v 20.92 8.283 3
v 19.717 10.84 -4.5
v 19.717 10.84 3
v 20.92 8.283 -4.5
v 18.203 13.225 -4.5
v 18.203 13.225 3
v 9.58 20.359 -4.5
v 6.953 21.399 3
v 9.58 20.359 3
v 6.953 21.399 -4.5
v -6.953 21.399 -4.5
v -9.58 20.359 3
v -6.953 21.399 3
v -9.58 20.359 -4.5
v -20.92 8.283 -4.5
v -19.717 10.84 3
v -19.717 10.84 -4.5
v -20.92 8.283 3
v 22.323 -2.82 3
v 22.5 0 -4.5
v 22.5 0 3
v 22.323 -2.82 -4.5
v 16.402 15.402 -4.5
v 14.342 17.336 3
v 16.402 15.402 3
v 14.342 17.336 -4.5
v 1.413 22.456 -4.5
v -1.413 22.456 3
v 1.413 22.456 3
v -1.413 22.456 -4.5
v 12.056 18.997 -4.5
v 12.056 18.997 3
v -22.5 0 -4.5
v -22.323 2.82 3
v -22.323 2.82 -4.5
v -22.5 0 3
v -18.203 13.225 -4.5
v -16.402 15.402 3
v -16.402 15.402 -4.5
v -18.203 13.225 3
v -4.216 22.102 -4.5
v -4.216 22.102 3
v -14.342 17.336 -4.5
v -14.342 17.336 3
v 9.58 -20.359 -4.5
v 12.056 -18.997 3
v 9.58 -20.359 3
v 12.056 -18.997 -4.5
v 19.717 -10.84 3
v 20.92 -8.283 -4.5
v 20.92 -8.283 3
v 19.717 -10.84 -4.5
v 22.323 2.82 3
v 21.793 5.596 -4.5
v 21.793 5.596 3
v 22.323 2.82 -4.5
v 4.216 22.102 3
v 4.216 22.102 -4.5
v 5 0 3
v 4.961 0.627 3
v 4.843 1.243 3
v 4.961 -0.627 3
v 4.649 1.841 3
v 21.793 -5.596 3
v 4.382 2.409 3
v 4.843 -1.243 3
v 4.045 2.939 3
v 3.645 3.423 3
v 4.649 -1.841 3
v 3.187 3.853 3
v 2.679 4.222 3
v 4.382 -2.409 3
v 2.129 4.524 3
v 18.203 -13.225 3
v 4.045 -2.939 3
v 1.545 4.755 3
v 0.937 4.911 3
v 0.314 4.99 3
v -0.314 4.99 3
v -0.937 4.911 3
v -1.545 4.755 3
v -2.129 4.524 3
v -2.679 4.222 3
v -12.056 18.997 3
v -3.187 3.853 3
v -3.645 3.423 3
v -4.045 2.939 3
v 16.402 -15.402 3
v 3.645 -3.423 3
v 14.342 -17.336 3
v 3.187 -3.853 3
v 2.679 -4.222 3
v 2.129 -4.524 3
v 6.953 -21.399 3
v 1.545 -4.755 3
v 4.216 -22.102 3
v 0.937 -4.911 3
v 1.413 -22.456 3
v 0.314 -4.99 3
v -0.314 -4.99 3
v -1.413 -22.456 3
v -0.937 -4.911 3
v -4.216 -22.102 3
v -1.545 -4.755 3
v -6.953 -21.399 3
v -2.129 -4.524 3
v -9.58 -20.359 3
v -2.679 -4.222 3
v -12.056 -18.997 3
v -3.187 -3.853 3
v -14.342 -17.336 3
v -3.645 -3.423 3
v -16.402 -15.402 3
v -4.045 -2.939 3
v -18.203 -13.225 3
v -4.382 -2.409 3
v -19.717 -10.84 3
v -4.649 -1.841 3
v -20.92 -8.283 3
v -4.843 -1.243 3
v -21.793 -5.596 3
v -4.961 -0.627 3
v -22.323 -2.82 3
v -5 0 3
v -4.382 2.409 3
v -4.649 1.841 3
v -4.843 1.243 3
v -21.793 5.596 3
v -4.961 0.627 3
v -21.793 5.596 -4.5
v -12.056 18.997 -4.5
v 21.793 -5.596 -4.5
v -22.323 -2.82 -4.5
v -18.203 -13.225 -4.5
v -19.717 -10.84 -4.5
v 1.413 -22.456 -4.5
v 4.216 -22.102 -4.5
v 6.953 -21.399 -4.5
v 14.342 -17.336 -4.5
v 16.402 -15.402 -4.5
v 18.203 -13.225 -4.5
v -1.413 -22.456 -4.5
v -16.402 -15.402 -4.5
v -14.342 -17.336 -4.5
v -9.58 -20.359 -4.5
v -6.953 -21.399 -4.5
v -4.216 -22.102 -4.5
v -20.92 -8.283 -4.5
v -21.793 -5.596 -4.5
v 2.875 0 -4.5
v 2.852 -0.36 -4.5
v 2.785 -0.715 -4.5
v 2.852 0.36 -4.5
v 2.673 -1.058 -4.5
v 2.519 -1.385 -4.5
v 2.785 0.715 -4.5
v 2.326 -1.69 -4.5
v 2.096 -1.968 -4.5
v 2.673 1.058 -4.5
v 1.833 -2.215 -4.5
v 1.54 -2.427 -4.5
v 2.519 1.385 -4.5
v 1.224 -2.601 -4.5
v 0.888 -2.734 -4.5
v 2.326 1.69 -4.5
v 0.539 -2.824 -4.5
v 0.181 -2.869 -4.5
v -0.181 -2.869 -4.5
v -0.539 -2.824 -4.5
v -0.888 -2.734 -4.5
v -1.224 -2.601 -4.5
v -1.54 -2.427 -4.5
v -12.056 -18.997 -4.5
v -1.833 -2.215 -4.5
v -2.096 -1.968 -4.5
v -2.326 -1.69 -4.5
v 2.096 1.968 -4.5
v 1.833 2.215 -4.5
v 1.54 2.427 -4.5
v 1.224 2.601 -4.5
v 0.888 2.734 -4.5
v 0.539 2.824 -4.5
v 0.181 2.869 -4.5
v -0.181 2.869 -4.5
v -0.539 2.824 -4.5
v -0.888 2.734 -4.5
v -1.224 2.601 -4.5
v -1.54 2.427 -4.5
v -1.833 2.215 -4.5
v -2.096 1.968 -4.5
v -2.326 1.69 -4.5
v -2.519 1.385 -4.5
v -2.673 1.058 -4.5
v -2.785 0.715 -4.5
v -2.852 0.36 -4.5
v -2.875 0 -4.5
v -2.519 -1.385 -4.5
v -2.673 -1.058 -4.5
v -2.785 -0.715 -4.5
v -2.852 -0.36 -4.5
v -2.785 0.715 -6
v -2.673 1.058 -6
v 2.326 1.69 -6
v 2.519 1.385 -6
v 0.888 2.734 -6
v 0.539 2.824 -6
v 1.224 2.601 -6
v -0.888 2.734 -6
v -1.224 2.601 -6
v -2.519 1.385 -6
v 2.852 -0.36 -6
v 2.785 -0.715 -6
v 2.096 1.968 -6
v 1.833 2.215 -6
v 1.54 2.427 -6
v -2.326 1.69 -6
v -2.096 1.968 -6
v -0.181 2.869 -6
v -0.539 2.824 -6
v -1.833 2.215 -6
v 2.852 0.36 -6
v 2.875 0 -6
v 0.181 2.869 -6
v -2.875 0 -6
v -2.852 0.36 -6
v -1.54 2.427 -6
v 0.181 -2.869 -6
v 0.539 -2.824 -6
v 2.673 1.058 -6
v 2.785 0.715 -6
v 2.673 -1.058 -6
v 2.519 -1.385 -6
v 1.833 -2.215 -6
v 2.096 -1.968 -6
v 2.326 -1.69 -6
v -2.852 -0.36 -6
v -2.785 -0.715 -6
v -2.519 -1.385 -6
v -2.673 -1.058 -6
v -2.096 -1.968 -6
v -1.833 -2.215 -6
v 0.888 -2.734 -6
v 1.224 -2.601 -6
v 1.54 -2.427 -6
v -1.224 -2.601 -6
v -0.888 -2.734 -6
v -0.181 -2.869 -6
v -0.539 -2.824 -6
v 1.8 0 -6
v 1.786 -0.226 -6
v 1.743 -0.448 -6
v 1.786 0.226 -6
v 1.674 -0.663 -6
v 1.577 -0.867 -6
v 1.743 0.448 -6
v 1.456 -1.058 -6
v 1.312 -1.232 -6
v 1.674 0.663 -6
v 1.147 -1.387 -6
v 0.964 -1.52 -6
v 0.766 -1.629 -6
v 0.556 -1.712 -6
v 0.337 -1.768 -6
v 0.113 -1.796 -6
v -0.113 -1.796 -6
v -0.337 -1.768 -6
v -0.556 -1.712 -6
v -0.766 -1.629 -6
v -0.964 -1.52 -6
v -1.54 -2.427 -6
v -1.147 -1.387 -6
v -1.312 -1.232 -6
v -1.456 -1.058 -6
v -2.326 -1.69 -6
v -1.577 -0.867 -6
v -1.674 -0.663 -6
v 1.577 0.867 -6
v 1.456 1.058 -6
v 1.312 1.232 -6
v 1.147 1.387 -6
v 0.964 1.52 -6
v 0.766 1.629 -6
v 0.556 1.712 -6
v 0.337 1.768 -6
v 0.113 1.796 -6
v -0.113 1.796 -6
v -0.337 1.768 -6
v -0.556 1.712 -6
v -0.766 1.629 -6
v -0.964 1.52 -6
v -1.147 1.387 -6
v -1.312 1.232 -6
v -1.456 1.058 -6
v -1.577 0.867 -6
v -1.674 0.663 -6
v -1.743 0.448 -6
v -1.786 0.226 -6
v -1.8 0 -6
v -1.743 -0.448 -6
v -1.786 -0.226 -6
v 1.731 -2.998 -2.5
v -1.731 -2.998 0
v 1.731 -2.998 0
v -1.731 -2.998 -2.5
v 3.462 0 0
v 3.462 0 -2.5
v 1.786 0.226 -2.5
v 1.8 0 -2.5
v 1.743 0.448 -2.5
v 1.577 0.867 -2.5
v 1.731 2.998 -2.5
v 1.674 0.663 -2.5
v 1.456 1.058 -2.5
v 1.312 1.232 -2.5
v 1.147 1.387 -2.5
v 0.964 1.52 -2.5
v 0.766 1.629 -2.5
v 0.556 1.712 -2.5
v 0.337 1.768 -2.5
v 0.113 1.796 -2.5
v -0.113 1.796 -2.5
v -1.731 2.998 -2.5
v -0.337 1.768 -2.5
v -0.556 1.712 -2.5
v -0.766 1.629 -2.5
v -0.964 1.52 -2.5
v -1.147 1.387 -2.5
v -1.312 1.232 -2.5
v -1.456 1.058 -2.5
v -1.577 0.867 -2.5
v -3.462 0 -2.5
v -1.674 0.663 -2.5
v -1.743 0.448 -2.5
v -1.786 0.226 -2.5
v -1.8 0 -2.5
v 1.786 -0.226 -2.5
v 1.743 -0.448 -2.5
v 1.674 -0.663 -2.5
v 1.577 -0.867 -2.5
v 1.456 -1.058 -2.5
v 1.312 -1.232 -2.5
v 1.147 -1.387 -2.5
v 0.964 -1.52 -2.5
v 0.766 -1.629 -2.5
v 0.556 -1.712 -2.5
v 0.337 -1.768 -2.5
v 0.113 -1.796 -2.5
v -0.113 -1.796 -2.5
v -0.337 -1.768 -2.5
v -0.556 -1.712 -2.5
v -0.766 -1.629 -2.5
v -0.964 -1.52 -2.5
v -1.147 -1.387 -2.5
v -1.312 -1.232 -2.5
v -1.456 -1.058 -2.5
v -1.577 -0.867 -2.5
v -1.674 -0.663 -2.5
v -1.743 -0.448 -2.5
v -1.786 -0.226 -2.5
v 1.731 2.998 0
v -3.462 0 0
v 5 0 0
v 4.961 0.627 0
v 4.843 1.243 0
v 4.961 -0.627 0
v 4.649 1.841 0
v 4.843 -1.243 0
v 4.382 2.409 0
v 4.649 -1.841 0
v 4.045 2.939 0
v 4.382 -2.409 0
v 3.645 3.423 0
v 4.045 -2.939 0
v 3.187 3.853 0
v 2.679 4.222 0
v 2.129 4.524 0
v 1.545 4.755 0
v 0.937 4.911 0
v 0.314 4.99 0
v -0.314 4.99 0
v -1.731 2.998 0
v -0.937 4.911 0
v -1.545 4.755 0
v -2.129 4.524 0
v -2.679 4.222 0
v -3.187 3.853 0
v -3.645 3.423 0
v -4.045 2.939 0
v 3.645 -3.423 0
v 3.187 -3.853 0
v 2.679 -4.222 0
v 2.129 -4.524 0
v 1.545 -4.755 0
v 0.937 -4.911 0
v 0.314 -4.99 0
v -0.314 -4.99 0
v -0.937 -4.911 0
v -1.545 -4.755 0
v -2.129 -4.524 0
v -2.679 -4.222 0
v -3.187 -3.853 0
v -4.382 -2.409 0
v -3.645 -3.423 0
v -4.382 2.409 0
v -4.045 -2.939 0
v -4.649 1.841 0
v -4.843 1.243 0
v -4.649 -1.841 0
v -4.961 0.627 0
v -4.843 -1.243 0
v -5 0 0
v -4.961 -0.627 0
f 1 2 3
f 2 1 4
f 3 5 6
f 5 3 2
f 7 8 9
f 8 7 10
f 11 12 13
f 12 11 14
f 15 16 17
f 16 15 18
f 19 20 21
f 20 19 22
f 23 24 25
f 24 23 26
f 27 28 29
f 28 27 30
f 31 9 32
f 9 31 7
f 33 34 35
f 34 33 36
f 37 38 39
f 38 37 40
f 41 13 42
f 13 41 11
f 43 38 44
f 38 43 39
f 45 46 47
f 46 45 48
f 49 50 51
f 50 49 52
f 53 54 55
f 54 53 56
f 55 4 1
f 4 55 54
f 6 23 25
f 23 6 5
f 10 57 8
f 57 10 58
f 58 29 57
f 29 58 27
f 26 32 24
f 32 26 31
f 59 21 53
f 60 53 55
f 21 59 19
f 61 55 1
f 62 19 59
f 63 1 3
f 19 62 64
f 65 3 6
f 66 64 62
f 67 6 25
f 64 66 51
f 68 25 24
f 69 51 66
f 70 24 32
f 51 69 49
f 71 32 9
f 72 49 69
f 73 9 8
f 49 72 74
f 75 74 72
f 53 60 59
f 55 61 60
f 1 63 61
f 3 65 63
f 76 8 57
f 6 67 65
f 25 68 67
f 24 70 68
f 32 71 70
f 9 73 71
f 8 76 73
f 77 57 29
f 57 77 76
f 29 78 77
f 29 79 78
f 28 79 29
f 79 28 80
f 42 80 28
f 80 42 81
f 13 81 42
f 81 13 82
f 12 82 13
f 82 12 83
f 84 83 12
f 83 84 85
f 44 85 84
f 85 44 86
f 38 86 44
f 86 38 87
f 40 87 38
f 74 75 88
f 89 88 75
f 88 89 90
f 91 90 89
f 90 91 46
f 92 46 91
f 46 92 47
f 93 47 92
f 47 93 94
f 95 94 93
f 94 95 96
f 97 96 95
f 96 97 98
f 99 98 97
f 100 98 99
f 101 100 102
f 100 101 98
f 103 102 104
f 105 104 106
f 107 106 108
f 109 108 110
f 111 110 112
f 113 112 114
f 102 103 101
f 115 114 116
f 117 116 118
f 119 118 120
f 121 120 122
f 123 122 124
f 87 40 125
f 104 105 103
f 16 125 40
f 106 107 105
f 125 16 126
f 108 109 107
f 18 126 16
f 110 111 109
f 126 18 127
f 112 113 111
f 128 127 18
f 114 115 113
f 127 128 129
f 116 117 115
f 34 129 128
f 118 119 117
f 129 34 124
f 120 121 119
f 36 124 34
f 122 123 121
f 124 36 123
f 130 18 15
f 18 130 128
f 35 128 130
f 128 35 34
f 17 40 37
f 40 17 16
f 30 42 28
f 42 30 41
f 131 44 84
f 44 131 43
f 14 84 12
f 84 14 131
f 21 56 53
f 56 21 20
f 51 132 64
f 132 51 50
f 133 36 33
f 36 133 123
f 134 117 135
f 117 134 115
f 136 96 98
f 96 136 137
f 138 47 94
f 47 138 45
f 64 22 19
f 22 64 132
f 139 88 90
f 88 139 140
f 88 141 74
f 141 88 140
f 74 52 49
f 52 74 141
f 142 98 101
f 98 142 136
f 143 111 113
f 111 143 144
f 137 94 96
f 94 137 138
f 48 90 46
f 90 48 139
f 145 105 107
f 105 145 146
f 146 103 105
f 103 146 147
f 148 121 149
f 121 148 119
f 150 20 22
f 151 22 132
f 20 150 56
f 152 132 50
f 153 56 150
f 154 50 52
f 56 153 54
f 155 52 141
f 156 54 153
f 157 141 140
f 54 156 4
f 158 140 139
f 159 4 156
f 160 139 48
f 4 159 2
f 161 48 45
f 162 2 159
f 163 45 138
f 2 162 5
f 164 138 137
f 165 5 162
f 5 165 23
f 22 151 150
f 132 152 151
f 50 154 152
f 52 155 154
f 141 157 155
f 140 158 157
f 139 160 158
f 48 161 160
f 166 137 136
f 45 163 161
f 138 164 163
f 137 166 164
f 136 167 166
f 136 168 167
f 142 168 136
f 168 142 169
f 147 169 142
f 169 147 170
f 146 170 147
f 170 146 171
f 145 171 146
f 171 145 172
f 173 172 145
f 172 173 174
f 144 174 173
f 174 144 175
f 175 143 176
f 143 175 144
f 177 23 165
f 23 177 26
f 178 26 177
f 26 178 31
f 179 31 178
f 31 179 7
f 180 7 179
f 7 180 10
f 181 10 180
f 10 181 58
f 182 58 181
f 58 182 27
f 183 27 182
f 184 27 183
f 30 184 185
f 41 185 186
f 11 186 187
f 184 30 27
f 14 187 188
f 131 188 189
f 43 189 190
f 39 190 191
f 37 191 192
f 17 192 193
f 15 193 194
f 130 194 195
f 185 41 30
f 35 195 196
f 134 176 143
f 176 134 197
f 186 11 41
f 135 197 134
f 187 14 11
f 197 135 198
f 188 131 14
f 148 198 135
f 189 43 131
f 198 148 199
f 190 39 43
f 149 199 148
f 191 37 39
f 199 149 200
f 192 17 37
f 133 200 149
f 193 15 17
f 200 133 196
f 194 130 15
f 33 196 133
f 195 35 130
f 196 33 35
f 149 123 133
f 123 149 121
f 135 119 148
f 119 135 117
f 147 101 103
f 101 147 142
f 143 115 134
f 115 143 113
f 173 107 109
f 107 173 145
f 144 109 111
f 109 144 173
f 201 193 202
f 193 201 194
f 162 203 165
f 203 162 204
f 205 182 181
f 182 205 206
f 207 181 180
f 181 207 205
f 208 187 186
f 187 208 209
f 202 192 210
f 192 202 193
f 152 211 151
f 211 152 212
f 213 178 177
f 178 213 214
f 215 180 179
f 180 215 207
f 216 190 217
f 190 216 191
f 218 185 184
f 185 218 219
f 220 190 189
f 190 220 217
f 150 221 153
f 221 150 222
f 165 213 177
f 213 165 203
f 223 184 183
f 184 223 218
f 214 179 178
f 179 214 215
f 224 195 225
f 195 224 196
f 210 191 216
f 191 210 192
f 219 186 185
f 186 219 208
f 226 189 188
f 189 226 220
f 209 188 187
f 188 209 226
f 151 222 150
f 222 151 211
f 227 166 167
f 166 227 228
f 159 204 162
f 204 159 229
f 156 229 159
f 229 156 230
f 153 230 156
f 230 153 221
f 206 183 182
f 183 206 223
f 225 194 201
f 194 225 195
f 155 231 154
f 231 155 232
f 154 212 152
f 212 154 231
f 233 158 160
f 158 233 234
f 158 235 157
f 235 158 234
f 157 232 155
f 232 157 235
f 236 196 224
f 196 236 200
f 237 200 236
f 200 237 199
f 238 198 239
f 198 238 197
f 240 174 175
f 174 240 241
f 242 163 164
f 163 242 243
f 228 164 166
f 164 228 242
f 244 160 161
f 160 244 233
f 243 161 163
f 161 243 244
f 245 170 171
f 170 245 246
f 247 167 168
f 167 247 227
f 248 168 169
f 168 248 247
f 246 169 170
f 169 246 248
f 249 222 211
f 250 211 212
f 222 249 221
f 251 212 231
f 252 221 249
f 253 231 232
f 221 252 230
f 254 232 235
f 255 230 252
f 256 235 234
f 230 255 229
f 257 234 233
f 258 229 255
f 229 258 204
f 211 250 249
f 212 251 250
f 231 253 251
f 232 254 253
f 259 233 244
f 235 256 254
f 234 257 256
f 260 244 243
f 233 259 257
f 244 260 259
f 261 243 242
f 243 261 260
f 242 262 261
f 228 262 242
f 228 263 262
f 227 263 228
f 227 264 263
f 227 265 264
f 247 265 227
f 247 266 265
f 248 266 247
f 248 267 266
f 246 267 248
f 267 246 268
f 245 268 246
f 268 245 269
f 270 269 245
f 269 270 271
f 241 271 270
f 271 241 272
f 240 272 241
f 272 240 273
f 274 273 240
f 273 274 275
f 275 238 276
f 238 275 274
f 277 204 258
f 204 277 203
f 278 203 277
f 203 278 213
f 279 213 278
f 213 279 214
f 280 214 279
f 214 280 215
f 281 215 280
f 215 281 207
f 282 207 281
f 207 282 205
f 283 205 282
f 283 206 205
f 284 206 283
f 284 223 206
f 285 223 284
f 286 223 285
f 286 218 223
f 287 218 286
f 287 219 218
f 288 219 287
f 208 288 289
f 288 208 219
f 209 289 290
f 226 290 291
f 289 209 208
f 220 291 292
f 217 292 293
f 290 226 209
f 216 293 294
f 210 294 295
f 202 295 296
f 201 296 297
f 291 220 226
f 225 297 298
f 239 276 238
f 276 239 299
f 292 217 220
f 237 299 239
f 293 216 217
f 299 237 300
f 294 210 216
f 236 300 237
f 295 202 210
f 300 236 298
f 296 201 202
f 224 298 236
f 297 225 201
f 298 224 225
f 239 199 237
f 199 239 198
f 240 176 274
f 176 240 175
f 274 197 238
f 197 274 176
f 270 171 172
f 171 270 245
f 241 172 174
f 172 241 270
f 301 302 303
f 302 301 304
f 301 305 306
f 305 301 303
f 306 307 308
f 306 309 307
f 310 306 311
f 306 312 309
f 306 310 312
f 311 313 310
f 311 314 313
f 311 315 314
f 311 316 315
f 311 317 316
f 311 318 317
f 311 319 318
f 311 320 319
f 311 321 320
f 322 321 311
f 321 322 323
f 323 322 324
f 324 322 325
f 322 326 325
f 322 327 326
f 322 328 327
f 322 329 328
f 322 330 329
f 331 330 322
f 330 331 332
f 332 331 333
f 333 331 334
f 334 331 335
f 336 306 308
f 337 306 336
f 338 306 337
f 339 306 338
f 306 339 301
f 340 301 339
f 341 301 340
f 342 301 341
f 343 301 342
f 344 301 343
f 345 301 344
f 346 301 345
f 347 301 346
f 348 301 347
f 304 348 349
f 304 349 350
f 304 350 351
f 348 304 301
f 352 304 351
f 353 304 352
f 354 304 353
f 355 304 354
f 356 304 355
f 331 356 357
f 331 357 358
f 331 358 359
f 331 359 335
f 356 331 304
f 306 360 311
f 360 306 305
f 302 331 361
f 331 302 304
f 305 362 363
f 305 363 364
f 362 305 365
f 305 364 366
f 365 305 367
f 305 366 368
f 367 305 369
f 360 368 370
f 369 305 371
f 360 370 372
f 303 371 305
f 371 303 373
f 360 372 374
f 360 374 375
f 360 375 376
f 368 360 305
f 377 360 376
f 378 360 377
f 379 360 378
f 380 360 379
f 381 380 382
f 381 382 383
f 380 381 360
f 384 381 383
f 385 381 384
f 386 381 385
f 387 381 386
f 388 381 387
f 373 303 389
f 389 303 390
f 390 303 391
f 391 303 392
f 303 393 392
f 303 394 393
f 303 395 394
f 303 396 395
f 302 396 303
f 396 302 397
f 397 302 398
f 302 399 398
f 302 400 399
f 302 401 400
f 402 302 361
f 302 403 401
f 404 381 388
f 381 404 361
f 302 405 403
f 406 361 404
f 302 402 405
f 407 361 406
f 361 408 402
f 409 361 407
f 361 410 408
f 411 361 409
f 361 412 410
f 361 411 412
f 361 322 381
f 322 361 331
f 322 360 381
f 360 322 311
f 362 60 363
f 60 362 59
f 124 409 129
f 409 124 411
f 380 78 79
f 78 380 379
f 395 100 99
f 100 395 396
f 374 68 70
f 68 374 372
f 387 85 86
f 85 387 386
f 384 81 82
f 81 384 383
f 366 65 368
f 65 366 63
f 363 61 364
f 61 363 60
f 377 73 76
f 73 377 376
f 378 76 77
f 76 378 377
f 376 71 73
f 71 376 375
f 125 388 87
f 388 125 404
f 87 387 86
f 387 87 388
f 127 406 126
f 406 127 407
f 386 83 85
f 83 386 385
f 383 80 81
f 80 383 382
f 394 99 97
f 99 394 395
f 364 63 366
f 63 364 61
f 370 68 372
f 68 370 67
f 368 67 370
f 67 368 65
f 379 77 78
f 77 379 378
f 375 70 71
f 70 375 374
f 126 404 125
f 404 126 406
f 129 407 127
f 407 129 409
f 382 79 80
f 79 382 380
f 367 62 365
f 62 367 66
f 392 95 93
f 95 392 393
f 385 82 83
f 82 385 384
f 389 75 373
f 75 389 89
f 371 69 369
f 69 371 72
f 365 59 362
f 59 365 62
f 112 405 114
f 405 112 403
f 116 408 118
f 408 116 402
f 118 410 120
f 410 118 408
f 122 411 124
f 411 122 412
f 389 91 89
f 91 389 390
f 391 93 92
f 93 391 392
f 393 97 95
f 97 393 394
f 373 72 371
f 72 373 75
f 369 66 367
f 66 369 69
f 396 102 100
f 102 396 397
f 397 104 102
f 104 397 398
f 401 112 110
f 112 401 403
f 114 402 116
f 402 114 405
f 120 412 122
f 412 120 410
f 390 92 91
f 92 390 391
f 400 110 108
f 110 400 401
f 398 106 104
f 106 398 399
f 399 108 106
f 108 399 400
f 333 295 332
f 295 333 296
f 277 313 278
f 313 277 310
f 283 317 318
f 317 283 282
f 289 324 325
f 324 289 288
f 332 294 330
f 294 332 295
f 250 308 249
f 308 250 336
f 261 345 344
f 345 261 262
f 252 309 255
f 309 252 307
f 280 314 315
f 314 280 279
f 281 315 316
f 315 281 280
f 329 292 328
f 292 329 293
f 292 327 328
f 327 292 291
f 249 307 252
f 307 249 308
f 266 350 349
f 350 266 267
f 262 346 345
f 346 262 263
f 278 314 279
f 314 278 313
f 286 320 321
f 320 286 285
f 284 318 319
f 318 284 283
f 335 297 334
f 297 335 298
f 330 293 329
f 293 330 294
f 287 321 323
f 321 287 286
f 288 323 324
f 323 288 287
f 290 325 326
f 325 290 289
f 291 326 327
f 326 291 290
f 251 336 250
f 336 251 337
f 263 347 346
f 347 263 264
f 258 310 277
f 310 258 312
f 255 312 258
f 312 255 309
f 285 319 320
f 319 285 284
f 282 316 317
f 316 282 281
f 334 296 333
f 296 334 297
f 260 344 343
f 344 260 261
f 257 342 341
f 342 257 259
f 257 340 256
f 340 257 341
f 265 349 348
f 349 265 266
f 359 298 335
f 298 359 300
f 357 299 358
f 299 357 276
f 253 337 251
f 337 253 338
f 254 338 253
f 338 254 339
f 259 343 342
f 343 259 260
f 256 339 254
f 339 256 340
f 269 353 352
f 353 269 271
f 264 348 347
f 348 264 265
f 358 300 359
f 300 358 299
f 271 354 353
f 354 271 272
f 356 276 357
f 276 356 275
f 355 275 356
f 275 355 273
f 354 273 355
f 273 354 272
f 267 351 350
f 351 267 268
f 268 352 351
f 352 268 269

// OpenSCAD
$fn = 50;


difference() {
	union() {
		translate(v = [0, 0, -4.5000000000]) {
			cylinder(h = 7.5000000000, r = 22.5000000000);
		}
		#translate(v = [0, 0, -6.0000000000]) {
			cylinder(h = 6, r = 2.8750000000);
		}
	}
	union() {
		translate(v = [0, 0, 0]) {
			rotate(a = [0, 0, 0]) {
				difference() {
					union() {
						translate(v = [0, 0, -2.5000000000]) {
							linear_extrude(height = 2.5000000000) {
								polygon(points = [[3.4620000000, 0.0000000000], [1.7310000000, 2.9981799479], [-1.7310000000, 2.9981799479], [-3.4620000000, 0.0000000000], [-1.7310000000, -2.9981799479], [1.7310000000, -2.9981799479]]);
							}
						}
					}
					union();
				}
			}
		}
		#cylinder(h = 3, r = 5.0000000000);
		#translate(v = [0, 0, -100.0000000000]) {
			cylinder(h = 200, r = 1.8000000000);
		}
	}
}
